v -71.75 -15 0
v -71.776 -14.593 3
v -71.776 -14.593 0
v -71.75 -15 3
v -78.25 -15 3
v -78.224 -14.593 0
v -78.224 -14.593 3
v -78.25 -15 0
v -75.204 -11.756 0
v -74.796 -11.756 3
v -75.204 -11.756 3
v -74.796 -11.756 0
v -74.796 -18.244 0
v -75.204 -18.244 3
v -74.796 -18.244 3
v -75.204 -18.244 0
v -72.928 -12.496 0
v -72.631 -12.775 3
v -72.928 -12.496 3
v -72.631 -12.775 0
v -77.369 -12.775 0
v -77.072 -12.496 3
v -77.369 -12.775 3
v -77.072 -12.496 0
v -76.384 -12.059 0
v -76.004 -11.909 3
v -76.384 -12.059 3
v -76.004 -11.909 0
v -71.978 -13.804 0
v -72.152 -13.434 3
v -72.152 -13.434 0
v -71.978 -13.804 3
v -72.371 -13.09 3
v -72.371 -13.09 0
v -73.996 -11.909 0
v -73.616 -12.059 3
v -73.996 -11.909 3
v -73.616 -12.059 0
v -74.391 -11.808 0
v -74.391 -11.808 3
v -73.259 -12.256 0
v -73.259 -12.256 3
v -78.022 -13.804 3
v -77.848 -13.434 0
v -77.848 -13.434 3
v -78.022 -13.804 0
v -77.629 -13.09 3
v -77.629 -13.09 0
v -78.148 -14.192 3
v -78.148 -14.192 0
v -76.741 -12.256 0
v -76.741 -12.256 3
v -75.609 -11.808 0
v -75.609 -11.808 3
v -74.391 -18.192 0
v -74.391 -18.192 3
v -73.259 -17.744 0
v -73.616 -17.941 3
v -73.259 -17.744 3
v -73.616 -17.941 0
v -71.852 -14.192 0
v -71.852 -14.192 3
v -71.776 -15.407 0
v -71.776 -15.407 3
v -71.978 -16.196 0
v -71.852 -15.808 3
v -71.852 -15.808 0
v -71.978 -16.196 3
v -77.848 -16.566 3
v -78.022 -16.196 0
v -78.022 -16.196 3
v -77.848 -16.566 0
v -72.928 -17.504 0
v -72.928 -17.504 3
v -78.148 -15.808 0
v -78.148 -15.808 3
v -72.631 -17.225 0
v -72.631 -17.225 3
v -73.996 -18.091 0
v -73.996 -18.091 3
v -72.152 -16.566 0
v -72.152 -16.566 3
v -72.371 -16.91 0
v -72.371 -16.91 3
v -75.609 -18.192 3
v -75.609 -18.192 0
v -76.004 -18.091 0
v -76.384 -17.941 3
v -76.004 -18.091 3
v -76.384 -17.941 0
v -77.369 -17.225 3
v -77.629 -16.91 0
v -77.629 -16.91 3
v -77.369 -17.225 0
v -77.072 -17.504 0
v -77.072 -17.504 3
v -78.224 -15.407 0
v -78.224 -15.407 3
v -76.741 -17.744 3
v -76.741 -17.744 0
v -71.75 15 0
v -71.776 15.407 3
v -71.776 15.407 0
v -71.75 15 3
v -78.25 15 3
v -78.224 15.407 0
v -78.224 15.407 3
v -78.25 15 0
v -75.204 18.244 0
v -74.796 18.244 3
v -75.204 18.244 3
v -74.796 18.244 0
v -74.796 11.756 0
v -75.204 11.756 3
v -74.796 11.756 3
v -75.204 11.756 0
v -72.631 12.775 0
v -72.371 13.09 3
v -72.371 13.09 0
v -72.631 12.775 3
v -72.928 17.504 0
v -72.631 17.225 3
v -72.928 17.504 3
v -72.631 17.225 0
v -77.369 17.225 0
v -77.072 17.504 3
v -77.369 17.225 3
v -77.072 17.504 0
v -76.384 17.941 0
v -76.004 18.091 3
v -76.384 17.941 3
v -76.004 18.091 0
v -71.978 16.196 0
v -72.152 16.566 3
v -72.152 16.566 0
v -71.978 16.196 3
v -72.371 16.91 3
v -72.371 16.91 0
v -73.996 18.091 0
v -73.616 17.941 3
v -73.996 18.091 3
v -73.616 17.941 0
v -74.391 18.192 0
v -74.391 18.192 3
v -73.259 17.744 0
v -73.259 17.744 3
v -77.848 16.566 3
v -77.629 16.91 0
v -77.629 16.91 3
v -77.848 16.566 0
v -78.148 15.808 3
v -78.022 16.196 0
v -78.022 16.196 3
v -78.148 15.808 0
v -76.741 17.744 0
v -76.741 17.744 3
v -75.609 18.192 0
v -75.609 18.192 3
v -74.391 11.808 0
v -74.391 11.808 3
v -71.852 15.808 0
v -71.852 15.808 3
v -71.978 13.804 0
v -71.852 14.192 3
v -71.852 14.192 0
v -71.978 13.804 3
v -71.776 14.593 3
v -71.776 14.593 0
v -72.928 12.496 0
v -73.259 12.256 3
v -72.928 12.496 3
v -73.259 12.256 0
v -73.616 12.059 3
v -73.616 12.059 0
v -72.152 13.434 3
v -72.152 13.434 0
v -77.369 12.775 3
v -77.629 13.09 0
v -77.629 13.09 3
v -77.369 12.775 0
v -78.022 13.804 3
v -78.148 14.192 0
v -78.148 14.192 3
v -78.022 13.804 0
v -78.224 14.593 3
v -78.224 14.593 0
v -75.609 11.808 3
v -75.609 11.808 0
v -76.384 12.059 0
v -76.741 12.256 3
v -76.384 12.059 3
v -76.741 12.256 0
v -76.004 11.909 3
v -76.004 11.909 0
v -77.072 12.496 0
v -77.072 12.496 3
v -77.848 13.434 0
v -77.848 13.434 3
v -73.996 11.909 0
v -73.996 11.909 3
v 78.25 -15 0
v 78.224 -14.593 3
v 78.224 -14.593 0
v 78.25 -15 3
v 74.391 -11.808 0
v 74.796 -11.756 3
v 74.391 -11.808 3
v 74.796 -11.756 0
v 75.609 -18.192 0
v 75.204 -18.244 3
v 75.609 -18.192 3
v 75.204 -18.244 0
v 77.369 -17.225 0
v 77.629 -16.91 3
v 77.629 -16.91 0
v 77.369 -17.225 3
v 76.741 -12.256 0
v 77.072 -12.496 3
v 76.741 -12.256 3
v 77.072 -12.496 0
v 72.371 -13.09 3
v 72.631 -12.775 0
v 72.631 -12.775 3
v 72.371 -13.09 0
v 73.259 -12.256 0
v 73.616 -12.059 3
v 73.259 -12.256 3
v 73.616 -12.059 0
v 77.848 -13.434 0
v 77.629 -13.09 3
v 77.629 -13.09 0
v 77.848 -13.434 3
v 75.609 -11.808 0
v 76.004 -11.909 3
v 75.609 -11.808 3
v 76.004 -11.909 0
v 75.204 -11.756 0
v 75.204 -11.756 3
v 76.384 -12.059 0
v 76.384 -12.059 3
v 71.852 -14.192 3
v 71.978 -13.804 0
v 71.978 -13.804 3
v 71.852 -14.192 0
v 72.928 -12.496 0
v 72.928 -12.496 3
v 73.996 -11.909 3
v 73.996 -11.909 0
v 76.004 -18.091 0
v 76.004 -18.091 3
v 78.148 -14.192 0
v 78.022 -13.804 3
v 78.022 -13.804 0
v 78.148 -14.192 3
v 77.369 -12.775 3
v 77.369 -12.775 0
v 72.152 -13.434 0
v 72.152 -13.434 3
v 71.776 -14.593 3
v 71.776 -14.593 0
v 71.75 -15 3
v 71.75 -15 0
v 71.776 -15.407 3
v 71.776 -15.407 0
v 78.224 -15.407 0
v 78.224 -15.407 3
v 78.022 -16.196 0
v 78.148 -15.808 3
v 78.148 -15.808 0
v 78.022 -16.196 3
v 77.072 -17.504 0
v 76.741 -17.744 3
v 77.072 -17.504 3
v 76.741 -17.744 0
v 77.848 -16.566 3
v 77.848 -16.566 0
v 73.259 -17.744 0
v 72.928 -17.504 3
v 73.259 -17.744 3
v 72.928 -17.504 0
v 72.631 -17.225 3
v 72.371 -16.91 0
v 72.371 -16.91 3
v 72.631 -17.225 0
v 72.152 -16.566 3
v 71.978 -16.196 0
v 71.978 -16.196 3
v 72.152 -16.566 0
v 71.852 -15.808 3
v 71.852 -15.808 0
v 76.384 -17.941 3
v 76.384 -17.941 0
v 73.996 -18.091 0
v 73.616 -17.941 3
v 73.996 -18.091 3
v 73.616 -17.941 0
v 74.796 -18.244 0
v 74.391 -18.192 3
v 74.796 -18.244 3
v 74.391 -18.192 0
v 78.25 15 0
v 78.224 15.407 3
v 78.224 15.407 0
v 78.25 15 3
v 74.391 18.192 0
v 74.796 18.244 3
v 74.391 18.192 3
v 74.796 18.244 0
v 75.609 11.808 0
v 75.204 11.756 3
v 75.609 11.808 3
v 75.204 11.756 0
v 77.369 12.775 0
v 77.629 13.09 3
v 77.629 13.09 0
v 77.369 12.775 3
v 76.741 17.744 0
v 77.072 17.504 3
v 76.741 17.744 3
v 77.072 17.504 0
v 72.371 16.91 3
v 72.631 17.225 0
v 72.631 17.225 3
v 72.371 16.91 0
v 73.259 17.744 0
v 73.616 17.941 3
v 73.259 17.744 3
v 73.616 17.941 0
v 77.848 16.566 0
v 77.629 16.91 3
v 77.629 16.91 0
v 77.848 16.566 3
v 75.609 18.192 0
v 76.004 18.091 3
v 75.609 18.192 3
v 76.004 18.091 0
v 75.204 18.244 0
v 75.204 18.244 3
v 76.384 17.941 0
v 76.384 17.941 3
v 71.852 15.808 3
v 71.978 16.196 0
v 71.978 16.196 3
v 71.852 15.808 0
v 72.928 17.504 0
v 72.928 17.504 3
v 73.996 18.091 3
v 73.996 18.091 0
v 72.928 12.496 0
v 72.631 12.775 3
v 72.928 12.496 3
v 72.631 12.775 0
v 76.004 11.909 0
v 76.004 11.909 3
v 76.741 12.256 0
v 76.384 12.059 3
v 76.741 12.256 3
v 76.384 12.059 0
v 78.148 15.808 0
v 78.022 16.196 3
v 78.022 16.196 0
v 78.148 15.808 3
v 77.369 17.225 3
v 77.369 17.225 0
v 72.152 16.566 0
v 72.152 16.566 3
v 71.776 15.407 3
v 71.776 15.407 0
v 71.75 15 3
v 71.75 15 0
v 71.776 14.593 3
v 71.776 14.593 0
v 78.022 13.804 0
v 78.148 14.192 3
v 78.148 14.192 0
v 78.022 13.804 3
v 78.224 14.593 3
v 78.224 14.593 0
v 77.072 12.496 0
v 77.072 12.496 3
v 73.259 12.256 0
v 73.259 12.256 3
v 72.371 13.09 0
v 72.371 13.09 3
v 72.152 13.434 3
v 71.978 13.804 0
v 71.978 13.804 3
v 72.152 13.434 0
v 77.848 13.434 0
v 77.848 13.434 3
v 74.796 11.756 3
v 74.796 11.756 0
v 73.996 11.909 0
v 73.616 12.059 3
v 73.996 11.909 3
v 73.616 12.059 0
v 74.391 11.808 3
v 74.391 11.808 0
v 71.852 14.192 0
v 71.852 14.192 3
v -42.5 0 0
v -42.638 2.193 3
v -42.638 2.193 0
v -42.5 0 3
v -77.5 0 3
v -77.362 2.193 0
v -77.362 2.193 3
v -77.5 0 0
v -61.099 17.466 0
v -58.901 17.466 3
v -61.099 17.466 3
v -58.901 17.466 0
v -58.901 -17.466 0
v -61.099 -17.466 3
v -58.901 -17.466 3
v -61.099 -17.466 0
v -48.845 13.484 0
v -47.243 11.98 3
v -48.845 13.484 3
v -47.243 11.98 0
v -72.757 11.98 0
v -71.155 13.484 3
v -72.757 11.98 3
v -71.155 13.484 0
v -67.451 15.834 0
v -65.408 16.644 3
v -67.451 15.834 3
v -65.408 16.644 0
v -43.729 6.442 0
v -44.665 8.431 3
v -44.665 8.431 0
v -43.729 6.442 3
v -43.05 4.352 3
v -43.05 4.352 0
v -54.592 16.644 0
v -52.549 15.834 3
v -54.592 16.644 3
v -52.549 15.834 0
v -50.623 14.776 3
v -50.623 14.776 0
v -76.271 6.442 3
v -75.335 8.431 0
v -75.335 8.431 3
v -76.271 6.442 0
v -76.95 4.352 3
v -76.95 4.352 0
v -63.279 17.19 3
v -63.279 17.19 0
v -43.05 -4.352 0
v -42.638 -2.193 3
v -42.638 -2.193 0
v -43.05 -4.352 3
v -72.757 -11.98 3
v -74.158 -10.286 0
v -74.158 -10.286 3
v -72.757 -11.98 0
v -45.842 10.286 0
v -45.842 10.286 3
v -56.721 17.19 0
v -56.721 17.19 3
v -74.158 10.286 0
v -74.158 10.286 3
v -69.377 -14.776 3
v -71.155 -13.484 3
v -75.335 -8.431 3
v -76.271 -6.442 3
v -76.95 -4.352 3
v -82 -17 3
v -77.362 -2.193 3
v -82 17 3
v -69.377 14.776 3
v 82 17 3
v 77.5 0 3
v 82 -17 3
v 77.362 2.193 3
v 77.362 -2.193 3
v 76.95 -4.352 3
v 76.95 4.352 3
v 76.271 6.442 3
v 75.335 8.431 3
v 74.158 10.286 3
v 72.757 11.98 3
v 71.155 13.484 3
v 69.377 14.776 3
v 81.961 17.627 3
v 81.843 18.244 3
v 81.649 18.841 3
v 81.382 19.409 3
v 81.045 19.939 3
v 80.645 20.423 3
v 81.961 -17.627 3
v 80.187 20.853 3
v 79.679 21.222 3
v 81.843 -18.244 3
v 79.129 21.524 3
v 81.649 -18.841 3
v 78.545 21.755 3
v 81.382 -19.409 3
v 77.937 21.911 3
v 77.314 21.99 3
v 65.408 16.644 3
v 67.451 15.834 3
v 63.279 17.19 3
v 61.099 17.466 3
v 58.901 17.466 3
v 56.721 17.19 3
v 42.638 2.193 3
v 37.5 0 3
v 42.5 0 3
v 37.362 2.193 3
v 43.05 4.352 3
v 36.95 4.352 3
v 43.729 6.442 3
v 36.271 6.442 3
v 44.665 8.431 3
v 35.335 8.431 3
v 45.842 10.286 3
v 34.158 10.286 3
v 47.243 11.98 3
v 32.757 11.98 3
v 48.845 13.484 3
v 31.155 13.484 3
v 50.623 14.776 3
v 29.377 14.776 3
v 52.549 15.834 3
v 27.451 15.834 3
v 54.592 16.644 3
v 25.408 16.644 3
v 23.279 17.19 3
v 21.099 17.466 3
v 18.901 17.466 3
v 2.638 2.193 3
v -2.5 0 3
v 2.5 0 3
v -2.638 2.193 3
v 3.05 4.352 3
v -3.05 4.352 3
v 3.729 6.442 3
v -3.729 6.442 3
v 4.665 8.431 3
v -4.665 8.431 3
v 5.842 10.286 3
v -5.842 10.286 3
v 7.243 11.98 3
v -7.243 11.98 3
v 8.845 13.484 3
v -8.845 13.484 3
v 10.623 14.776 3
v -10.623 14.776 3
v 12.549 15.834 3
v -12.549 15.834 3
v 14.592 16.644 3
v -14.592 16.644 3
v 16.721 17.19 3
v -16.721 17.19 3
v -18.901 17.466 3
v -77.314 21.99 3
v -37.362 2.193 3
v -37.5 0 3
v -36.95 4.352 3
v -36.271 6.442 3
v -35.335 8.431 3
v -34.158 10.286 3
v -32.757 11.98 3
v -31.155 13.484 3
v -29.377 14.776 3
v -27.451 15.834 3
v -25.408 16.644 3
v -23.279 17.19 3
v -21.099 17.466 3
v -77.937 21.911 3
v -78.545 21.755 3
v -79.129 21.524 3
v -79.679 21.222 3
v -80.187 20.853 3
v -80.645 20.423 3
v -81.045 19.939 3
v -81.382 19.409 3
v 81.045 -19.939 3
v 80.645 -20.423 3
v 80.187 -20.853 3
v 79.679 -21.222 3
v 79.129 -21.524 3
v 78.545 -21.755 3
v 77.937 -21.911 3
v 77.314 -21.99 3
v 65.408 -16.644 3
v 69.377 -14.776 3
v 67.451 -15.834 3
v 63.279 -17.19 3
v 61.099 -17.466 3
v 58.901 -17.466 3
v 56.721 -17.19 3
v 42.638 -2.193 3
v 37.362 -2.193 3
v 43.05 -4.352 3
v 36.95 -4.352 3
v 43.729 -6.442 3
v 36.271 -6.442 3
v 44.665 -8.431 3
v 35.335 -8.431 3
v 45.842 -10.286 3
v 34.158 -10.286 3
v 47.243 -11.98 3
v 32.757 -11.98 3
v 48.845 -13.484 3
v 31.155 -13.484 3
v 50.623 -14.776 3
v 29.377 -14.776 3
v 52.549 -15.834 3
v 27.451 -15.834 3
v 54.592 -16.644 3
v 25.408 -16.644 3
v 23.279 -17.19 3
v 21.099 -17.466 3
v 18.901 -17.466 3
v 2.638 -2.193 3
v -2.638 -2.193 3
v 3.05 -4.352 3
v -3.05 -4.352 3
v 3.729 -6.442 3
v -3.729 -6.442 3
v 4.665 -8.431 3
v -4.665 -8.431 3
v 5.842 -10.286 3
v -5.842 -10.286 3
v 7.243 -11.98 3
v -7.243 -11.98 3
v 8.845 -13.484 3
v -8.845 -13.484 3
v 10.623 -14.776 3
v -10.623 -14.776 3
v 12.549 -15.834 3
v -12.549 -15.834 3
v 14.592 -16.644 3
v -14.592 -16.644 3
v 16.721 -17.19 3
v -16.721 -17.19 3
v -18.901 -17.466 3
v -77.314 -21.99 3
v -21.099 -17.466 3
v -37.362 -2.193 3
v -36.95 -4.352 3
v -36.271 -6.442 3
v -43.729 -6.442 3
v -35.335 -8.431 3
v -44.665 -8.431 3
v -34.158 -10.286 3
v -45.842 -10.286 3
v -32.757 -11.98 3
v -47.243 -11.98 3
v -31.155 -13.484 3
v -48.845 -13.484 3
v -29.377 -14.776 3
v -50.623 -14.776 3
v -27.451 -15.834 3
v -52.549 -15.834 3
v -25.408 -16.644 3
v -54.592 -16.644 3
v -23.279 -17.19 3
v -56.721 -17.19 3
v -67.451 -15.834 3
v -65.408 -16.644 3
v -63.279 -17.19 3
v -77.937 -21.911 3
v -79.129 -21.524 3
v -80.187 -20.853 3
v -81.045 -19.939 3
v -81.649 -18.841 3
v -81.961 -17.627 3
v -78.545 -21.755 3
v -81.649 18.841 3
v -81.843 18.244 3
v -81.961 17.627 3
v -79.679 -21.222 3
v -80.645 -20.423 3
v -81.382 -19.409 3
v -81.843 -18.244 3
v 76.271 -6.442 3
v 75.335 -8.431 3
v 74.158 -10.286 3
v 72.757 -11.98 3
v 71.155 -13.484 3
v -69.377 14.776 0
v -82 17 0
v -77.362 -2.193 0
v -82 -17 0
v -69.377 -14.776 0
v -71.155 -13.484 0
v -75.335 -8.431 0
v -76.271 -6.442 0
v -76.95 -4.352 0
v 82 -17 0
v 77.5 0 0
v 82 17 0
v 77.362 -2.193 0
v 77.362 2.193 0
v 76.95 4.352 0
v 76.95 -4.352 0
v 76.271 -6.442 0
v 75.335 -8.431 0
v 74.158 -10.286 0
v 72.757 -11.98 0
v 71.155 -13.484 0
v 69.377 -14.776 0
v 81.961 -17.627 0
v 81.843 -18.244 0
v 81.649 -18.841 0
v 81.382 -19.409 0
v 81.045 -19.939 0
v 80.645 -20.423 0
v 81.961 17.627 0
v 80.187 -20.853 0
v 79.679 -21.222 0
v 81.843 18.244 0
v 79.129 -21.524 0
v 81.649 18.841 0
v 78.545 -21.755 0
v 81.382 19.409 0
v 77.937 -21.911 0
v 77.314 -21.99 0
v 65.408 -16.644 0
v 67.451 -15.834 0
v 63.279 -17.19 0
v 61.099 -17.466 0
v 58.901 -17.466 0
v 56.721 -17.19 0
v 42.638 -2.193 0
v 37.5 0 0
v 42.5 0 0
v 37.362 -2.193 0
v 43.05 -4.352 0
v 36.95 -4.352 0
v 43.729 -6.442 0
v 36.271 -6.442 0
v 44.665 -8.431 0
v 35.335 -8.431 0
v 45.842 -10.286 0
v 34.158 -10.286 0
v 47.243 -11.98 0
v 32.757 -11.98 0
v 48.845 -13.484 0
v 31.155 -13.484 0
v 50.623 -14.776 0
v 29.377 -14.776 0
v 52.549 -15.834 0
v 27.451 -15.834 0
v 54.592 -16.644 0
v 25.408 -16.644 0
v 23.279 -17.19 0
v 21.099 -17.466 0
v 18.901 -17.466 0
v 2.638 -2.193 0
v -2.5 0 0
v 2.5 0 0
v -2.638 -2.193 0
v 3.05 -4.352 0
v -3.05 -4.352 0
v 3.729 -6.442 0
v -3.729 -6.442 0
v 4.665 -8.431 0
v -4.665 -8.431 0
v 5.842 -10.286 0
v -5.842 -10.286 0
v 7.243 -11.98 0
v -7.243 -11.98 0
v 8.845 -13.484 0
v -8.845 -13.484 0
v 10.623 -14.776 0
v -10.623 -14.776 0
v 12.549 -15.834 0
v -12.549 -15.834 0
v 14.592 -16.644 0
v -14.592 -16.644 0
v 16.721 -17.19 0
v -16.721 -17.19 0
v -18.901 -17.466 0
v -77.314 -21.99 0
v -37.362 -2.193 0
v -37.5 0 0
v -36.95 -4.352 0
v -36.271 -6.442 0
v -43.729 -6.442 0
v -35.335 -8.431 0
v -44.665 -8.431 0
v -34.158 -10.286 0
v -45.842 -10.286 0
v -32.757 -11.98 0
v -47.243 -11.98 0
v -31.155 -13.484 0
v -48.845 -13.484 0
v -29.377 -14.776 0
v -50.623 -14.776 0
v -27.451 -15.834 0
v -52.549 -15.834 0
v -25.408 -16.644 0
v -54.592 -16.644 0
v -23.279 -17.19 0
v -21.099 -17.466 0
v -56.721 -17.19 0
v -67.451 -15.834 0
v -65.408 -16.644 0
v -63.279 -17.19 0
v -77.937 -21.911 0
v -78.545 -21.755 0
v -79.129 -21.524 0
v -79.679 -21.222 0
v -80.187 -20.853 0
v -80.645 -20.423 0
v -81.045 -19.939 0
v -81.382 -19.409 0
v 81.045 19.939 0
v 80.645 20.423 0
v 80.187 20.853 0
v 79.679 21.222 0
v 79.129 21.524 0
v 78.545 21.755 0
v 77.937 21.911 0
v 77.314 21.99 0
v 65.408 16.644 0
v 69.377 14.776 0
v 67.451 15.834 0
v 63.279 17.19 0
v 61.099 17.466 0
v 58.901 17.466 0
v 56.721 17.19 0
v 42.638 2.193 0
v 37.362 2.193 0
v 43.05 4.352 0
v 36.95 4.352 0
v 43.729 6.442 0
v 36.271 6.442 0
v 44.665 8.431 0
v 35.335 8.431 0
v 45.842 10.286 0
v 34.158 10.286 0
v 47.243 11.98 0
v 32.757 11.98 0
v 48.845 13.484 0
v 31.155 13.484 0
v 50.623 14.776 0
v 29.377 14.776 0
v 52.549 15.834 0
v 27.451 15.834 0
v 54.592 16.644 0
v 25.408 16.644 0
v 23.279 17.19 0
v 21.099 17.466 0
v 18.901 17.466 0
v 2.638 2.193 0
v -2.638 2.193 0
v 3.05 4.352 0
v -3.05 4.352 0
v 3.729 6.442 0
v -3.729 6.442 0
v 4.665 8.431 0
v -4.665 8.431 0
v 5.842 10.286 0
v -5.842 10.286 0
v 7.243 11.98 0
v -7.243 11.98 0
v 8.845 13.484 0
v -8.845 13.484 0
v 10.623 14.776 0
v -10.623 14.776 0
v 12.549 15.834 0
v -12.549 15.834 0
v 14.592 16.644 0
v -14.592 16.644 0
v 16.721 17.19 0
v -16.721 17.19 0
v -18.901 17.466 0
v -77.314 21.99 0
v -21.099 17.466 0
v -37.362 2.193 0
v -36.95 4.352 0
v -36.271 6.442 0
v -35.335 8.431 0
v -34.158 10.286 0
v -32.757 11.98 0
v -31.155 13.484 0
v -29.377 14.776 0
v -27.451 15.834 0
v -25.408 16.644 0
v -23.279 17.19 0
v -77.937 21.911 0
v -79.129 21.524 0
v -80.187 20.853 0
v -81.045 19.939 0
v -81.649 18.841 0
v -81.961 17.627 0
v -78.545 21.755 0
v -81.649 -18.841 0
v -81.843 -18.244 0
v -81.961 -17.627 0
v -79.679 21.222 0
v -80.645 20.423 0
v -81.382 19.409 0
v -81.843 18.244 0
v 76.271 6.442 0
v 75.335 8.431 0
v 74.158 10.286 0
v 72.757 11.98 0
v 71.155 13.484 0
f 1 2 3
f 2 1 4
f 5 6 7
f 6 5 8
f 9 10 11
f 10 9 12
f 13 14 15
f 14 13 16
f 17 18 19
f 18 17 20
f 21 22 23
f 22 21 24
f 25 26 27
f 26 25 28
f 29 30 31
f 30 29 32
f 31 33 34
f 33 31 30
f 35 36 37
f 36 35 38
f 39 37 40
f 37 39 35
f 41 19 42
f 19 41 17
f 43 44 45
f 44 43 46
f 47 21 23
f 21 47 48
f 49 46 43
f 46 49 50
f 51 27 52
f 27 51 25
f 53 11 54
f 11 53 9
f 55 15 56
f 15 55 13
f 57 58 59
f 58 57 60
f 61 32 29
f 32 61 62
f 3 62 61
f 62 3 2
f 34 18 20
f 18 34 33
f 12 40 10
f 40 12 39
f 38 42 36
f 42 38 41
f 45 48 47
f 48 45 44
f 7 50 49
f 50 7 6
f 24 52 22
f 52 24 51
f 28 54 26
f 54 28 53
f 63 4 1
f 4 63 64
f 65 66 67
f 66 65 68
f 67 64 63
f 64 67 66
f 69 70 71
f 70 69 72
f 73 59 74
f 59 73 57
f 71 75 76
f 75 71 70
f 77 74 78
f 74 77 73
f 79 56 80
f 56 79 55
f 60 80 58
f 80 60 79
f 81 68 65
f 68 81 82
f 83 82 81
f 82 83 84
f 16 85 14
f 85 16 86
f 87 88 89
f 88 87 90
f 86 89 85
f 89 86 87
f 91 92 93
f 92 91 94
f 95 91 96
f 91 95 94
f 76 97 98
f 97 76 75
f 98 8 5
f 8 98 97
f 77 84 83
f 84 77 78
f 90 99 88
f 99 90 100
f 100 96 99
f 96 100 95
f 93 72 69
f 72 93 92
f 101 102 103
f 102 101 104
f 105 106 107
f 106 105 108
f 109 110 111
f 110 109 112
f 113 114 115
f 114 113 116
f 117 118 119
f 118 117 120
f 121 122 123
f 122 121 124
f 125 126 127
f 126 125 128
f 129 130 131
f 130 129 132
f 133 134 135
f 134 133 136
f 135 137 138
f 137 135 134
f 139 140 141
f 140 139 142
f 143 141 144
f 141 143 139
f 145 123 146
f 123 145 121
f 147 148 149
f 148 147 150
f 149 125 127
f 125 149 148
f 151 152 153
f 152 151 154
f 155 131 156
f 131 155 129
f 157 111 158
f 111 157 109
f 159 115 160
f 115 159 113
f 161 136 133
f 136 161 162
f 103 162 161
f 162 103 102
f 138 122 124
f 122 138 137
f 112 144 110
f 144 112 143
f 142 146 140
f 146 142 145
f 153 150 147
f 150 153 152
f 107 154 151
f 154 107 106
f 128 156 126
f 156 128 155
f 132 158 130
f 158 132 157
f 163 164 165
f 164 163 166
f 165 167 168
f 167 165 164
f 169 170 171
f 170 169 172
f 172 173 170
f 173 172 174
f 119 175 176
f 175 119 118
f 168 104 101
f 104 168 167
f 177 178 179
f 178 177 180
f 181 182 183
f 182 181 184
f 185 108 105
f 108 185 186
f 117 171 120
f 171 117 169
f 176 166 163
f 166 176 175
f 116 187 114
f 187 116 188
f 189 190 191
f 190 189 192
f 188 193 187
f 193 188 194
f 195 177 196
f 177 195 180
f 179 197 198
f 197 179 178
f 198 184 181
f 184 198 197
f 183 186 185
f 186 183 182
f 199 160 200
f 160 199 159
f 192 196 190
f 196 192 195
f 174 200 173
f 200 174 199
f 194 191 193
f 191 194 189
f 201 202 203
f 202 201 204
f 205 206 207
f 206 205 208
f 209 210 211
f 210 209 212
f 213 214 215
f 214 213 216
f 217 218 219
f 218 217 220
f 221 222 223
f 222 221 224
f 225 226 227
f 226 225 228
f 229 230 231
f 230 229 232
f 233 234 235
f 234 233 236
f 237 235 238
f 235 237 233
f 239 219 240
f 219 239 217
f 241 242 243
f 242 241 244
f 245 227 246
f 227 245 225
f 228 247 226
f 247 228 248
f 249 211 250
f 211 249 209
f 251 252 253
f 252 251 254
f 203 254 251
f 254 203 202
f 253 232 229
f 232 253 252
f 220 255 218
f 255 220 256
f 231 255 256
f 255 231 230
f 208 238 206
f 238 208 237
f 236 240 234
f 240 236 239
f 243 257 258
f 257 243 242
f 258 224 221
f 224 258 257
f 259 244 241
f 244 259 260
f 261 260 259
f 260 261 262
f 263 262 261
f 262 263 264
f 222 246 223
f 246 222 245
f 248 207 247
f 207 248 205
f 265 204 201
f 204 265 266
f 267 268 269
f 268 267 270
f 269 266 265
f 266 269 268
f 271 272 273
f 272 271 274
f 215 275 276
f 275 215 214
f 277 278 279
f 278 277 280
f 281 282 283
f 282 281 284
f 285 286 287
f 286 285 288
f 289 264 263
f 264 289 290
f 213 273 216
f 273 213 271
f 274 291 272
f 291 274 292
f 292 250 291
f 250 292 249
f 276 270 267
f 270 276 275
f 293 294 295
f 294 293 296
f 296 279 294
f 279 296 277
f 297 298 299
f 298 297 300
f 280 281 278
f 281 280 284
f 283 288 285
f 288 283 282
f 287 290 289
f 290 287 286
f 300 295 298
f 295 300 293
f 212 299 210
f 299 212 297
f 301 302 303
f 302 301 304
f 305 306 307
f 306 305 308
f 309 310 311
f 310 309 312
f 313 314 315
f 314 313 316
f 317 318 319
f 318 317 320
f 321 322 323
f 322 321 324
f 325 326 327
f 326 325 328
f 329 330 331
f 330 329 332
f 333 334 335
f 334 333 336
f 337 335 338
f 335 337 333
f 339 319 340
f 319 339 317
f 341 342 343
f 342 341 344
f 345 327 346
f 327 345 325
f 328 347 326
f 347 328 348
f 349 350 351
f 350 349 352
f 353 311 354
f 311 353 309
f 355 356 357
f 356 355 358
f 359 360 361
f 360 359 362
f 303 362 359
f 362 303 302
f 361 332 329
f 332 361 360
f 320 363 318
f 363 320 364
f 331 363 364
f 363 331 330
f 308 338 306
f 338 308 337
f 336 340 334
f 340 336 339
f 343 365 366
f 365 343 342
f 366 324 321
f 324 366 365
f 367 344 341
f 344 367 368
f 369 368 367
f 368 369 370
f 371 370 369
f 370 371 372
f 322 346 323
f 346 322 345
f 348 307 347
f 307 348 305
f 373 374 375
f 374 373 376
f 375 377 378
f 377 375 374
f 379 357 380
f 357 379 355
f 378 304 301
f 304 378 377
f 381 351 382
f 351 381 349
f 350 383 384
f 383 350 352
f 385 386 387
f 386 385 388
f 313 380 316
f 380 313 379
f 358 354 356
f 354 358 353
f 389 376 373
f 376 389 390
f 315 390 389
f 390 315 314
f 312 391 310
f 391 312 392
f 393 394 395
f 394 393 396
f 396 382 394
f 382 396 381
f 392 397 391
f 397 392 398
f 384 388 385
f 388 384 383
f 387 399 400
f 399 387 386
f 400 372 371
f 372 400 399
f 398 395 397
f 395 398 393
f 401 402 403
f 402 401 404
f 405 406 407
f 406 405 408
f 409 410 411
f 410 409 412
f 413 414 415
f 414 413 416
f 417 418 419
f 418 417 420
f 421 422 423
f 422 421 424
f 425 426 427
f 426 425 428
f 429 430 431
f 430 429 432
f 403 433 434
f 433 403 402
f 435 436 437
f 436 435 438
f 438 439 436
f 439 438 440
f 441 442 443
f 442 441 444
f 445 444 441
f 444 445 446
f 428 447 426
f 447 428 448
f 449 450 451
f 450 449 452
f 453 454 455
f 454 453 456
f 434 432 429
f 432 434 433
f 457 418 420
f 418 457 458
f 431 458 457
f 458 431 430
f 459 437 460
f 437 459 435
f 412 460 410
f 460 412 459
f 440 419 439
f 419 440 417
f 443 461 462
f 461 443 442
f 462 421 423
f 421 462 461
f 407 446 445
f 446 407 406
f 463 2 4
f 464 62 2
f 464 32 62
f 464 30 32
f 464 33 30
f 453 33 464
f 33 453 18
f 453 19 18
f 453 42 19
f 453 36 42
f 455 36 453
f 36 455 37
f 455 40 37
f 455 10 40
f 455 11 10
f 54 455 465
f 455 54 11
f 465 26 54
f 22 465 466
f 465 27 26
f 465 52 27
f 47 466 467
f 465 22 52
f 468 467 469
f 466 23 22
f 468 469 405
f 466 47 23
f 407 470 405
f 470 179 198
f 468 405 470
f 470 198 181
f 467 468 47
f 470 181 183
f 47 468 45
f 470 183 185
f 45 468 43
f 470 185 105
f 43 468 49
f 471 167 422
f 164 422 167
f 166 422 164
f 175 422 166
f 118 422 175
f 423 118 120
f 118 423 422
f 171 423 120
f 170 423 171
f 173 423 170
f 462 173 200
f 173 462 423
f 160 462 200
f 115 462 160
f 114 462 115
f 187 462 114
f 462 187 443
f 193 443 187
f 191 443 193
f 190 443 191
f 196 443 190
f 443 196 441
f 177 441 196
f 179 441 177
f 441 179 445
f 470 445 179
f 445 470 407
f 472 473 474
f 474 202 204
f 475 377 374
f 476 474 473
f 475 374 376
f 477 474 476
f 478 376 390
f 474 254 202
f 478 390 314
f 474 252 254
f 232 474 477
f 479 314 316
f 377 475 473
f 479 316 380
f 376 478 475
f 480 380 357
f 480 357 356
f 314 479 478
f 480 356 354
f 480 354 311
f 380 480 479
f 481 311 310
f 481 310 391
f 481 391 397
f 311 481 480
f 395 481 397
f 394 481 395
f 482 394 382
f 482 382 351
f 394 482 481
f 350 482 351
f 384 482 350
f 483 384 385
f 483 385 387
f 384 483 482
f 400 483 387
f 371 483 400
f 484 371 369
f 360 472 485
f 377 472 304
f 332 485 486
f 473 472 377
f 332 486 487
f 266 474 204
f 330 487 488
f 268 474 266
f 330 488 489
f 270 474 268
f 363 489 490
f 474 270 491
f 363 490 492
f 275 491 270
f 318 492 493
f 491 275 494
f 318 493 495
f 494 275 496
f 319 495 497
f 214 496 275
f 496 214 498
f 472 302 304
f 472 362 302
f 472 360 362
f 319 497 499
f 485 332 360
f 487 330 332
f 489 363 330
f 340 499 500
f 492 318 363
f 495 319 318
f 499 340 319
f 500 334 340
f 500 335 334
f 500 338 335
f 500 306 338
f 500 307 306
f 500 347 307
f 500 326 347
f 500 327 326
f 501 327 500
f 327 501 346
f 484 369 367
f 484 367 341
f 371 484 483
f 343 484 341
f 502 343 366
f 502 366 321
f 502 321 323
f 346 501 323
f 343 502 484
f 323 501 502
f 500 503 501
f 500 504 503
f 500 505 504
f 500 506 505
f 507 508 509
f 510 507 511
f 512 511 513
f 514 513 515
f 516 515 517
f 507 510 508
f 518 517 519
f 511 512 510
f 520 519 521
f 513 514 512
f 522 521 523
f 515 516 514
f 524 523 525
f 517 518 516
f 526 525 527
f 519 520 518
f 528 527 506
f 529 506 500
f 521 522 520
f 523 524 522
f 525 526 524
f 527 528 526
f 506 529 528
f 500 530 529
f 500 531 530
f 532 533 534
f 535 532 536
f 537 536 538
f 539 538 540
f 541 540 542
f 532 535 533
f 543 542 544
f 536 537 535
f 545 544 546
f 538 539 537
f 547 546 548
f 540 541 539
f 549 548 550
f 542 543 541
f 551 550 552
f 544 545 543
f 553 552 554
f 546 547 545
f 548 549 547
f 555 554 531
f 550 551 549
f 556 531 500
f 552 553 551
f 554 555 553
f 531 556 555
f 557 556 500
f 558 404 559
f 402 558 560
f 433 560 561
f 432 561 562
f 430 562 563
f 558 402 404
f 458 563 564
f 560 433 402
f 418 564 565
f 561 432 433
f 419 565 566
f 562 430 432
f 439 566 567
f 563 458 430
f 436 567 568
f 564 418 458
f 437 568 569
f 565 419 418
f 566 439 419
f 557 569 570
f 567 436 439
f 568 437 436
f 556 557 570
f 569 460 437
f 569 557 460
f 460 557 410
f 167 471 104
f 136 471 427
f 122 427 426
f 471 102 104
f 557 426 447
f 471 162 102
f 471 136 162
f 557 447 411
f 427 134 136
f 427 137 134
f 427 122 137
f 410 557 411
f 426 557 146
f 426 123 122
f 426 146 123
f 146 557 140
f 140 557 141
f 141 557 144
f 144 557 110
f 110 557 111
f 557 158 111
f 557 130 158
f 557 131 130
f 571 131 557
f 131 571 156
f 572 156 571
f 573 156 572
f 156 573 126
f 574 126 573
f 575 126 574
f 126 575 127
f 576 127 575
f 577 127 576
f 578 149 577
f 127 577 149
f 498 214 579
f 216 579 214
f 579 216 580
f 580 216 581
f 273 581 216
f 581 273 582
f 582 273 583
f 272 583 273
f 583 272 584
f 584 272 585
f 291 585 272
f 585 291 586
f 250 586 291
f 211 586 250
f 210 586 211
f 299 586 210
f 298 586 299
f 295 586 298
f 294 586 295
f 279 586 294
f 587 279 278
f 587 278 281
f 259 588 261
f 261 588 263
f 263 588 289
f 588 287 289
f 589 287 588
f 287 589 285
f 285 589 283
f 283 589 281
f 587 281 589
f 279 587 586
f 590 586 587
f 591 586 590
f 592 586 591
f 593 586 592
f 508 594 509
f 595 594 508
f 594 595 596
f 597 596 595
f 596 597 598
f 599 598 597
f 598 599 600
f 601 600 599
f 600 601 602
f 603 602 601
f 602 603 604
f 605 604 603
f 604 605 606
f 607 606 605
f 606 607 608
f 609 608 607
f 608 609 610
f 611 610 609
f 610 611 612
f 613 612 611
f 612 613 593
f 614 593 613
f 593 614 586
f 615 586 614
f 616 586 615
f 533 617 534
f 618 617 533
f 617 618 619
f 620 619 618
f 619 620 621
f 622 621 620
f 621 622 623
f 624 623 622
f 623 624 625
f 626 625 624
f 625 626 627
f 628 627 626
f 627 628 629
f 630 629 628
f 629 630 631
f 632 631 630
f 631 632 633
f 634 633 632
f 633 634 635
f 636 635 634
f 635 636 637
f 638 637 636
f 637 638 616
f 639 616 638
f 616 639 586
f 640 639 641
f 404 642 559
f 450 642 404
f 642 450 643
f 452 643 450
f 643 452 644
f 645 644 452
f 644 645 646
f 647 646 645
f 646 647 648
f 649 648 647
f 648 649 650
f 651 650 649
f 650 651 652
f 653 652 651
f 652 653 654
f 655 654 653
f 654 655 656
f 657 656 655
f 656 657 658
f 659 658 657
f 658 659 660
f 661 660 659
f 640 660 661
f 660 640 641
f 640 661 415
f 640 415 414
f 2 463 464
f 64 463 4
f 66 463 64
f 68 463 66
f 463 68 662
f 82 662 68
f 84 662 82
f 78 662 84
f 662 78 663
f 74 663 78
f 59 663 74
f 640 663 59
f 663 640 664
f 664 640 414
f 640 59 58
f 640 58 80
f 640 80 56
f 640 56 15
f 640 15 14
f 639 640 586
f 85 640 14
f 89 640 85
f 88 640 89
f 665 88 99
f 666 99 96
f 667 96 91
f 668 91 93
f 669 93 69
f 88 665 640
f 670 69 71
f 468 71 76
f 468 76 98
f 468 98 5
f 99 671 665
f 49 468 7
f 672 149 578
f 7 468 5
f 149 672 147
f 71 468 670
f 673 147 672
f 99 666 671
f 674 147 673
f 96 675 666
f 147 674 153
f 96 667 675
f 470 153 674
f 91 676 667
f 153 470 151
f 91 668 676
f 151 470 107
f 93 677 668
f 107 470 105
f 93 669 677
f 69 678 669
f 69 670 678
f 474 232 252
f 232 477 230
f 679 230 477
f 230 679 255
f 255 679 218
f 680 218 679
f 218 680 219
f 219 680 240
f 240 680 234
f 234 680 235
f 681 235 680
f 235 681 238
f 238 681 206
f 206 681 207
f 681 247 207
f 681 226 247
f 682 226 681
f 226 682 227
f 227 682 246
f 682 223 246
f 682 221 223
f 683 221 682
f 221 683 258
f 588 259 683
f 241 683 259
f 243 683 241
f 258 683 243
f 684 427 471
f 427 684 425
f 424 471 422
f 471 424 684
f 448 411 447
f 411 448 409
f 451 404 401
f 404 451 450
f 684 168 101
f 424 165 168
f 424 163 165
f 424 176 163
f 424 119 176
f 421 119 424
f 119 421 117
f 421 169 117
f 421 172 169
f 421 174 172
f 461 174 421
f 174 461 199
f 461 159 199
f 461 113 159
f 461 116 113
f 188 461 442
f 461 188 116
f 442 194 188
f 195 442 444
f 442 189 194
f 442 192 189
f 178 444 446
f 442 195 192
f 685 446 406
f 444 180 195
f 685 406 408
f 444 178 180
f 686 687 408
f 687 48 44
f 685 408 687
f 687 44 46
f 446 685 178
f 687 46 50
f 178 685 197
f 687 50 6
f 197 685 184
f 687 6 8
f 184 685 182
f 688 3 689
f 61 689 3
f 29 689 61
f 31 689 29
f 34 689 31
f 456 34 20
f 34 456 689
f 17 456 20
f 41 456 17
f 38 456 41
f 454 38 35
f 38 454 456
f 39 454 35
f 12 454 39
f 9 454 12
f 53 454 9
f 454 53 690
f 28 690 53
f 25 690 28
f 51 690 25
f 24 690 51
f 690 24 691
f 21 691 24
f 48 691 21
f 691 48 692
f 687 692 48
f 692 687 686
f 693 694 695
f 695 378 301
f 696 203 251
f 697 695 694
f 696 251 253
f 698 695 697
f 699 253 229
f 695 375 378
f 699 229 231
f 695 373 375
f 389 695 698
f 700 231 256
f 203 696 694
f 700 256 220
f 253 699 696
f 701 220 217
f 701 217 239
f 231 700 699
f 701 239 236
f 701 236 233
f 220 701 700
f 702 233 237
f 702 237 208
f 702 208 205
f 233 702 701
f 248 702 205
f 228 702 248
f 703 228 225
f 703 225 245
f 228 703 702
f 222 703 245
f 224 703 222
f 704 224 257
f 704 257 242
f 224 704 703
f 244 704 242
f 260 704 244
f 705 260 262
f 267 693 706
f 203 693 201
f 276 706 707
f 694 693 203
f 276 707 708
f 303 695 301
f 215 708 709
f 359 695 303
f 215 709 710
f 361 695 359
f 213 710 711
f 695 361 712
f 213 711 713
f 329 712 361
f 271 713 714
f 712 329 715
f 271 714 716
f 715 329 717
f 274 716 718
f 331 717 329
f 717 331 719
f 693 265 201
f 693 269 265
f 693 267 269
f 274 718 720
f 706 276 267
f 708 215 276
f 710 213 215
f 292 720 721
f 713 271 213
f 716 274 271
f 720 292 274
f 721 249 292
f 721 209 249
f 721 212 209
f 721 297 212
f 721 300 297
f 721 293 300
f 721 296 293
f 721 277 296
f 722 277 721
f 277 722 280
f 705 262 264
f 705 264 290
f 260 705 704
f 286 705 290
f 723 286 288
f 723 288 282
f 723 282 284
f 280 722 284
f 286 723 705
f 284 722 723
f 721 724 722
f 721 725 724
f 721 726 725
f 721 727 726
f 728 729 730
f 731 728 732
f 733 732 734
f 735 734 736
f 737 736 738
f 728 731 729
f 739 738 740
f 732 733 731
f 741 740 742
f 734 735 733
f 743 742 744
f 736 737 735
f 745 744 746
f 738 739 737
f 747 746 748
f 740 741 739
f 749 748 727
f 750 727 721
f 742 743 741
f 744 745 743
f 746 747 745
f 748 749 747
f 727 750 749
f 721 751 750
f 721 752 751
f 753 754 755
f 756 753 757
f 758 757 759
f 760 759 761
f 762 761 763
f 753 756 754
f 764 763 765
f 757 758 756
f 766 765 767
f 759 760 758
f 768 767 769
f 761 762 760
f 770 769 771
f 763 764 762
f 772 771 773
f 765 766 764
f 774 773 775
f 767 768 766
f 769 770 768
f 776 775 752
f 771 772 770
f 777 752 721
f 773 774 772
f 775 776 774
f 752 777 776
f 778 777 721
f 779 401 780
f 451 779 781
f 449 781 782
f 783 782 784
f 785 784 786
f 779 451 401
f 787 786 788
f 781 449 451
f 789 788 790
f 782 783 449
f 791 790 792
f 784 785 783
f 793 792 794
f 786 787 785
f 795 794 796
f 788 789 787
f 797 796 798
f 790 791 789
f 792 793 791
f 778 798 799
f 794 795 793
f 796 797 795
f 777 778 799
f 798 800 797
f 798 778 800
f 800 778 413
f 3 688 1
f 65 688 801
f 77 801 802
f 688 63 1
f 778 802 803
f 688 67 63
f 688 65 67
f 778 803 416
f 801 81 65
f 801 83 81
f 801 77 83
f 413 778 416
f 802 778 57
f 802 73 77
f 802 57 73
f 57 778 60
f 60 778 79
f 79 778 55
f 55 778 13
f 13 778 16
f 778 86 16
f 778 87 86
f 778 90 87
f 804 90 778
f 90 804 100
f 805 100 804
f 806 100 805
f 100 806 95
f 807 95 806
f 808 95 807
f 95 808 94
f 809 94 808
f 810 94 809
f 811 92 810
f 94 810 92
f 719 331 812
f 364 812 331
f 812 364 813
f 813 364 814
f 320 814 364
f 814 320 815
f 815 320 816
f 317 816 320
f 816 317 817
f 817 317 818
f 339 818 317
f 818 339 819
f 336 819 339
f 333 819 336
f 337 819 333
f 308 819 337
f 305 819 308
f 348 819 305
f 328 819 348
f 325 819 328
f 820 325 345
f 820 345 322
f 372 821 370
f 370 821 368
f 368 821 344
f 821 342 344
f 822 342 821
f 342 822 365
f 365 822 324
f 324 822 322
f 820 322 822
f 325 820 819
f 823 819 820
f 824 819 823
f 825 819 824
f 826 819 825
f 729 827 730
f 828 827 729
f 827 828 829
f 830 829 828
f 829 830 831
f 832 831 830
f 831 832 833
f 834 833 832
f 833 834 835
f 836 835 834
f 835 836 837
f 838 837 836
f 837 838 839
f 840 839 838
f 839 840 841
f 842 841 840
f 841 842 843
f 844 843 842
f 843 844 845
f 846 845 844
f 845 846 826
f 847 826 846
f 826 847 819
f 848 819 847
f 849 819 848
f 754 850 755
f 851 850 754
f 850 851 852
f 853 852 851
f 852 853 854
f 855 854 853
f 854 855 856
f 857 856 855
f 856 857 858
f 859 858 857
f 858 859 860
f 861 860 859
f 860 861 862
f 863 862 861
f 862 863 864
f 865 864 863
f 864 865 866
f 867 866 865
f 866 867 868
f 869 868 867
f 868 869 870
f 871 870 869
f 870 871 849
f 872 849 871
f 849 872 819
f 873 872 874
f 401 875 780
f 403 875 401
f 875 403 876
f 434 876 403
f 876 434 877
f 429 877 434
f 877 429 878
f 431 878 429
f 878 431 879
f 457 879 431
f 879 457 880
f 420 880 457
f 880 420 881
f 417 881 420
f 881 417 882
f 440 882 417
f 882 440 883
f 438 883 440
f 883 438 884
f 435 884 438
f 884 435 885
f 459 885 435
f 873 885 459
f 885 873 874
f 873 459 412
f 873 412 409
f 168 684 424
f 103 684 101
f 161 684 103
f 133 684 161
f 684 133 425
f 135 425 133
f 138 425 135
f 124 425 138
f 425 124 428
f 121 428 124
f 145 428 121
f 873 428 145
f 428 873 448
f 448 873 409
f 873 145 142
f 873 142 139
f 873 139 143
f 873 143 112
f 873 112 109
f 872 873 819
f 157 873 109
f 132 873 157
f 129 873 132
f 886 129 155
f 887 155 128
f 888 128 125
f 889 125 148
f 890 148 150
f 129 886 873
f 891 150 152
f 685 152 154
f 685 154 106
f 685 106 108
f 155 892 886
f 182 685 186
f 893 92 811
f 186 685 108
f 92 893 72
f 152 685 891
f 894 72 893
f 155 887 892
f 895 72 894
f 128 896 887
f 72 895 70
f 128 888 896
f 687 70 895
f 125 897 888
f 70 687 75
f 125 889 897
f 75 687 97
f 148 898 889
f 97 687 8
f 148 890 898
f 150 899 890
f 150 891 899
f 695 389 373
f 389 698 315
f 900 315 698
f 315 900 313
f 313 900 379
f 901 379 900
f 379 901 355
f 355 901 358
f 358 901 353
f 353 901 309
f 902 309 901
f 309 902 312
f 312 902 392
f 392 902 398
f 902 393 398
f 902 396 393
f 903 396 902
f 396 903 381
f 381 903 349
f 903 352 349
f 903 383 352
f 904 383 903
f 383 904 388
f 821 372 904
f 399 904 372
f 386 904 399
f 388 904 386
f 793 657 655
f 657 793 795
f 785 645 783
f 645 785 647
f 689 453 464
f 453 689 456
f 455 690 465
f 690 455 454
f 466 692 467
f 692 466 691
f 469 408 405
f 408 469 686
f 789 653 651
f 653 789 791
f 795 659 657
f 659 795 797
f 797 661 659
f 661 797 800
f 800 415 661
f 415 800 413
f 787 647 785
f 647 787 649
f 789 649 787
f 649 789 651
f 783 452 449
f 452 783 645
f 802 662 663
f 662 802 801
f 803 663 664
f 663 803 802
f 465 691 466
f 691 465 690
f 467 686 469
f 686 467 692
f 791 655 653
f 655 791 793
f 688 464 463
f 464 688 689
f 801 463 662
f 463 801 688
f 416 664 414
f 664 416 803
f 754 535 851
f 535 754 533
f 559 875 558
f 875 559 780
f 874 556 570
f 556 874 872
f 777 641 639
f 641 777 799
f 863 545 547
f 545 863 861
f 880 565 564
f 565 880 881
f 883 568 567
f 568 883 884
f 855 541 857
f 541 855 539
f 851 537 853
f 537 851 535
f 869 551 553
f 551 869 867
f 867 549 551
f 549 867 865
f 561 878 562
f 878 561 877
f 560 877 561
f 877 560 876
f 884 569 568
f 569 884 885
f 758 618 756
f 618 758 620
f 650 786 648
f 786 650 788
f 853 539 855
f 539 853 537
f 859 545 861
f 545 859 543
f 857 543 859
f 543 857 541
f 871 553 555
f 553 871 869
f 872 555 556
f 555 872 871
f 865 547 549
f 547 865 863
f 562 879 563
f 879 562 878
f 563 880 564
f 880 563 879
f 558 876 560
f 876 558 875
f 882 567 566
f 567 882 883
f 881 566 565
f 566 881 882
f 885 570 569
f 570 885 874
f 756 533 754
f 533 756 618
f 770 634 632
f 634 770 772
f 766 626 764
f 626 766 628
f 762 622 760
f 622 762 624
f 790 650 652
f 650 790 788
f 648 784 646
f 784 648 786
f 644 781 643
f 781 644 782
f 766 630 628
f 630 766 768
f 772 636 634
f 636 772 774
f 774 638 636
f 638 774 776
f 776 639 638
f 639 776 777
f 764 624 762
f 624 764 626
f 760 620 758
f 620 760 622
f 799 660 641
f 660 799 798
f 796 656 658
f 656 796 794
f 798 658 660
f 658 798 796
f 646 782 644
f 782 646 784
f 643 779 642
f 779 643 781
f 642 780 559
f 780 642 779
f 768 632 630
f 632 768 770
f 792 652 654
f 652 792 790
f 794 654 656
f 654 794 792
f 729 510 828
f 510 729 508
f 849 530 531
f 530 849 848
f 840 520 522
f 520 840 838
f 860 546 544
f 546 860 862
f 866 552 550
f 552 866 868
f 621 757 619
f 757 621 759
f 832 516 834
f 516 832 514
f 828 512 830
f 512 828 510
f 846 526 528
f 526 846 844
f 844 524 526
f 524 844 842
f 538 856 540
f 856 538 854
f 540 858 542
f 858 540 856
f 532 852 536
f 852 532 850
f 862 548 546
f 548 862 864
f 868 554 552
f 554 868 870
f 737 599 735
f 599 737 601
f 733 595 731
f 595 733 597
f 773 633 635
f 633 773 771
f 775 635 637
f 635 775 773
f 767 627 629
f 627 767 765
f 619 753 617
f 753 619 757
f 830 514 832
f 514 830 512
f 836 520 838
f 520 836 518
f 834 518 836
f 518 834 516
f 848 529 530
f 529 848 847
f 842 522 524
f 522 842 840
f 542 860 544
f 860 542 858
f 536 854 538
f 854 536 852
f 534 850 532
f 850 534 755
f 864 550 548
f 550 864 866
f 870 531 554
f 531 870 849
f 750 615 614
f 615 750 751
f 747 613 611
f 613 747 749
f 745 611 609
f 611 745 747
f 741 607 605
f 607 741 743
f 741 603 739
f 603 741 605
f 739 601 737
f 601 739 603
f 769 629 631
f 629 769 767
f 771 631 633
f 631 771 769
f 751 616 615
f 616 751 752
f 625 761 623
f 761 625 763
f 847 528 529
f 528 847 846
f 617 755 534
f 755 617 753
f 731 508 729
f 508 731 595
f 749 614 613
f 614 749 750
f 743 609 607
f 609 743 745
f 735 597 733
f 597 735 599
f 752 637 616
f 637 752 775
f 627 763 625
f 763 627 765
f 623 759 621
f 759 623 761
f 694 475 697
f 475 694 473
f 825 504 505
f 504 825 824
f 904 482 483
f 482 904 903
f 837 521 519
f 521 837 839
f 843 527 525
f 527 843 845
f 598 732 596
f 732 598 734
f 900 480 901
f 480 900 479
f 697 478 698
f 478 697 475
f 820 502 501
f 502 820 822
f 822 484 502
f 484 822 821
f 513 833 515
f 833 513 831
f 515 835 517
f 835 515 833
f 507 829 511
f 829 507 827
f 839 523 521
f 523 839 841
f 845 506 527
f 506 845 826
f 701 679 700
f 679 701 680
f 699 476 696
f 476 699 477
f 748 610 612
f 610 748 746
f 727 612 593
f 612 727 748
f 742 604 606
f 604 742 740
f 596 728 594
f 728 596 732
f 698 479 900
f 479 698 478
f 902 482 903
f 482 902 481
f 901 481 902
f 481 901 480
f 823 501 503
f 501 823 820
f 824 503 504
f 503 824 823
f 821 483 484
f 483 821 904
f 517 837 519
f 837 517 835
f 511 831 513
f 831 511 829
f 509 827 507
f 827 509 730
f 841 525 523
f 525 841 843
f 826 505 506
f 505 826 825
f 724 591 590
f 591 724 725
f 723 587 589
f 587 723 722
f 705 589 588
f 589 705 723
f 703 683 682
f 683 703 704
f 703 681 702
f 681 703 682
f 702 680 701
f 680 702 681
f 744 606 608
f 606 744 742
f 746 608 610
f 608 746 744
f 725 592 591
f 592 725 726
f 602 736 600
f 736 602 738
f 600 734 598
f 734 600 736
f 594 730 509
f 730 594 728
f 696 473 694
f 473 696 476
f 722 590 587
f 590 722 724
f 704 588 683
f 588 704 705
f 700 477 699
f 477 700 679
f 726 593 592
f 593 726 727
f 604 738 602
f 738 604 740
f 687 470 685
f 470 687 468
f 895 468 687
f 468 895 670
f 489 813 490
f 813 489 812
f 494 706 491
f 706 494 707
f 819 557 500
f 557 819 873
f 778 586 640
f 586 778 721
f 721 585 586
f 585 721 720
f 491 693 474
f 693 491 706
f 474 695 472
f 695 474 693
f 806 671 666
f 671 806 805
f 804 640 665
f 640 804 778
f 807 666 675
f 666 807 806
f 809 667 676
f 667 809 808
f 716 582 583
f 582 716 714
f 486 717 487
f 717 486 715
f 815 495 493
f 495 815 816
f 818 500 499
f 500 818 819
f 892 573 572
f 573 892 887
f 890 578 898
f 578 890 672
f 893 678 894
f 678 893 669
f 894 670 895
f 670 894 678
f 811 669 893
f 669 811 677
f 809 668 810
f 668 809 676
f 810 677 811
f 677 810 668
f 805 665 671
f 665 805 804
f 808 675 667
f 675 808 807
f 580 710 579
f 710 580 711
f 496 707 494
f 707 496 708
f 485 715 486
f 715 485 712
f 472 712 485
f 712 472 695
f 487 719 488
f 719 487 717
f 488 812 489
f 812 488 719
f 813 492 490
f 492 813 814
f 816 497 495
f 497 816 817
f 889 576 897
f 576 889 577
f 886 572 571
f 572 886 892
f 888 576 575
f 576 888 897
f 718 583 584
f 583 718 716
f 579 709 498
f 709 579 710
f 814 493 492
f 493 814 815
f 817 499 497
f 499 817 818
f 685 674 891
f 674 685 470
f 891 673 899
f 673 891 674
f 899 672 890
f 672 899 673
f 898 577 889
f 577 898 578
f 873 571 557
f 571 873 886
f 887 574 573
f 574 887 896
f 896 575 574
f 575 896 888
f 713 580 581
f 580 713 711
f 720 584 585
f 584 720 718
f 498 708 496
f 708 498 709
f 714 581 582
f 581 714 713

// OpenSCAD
$fn = 50;


difference() {
	union() {
		hull() {
			translate(v = [-77.0000000000, 17.0000000000, 0]) {
				cylinder(h = 3, r = 5);
			}
			translate(v = [77.0000000000, 17.0000000000, 0]) {
				cylinder(h = 3, r = 5);
			}
			translate(v = [-77.0000000000, -17.0000000000, 0]) {
				cylinder(h = 3, r = 5);
			}
			translate(v = [77.0000000000, -17.0000000000, 0]) {
				cylinder(h = 3, r = 5);
			}
		}
	}
	union() {
		#translate(v = [-75.0000000000, -15.0000000000, -100.0000000000]) {
			cylinder(h = 200, r = 3.2500000000);
		}
		#translate(v = [-75.0000000000, 15.0000000000, -100.0000000000]) {
			cylinder(h = 200, r = 3.2500000000);
		}
		#translate(v = [75.0000000000, -15.0000000000, -100.0000000000]) {
			cylinder(h = 200, r = 3.2500000000);
		}
		#translate(v = [75.0000000000, 15.0000000000, -100.0000000000]) {
			cylinder(h = 200, r = 3.2500000000);
		}
		#translate(v = [-60.0000000000, 0, 0]) {
			cylinder(h = 3, r = 17.5000000000);
		}
		#translate(v = [-20.0000000000, 0, 0]) {
			cylinder(h = 3, r = 17.5000000000);
		}
		#translate(v = [20.0000000000, 0, 0]) {
			cylinder(h = 3, r = 17.5000000000);
		}
		#translate(v = [60.0000000000, 0, 0]) {
			cylinder(h = 3, r = 17.5000000000);
		}
	}
}
